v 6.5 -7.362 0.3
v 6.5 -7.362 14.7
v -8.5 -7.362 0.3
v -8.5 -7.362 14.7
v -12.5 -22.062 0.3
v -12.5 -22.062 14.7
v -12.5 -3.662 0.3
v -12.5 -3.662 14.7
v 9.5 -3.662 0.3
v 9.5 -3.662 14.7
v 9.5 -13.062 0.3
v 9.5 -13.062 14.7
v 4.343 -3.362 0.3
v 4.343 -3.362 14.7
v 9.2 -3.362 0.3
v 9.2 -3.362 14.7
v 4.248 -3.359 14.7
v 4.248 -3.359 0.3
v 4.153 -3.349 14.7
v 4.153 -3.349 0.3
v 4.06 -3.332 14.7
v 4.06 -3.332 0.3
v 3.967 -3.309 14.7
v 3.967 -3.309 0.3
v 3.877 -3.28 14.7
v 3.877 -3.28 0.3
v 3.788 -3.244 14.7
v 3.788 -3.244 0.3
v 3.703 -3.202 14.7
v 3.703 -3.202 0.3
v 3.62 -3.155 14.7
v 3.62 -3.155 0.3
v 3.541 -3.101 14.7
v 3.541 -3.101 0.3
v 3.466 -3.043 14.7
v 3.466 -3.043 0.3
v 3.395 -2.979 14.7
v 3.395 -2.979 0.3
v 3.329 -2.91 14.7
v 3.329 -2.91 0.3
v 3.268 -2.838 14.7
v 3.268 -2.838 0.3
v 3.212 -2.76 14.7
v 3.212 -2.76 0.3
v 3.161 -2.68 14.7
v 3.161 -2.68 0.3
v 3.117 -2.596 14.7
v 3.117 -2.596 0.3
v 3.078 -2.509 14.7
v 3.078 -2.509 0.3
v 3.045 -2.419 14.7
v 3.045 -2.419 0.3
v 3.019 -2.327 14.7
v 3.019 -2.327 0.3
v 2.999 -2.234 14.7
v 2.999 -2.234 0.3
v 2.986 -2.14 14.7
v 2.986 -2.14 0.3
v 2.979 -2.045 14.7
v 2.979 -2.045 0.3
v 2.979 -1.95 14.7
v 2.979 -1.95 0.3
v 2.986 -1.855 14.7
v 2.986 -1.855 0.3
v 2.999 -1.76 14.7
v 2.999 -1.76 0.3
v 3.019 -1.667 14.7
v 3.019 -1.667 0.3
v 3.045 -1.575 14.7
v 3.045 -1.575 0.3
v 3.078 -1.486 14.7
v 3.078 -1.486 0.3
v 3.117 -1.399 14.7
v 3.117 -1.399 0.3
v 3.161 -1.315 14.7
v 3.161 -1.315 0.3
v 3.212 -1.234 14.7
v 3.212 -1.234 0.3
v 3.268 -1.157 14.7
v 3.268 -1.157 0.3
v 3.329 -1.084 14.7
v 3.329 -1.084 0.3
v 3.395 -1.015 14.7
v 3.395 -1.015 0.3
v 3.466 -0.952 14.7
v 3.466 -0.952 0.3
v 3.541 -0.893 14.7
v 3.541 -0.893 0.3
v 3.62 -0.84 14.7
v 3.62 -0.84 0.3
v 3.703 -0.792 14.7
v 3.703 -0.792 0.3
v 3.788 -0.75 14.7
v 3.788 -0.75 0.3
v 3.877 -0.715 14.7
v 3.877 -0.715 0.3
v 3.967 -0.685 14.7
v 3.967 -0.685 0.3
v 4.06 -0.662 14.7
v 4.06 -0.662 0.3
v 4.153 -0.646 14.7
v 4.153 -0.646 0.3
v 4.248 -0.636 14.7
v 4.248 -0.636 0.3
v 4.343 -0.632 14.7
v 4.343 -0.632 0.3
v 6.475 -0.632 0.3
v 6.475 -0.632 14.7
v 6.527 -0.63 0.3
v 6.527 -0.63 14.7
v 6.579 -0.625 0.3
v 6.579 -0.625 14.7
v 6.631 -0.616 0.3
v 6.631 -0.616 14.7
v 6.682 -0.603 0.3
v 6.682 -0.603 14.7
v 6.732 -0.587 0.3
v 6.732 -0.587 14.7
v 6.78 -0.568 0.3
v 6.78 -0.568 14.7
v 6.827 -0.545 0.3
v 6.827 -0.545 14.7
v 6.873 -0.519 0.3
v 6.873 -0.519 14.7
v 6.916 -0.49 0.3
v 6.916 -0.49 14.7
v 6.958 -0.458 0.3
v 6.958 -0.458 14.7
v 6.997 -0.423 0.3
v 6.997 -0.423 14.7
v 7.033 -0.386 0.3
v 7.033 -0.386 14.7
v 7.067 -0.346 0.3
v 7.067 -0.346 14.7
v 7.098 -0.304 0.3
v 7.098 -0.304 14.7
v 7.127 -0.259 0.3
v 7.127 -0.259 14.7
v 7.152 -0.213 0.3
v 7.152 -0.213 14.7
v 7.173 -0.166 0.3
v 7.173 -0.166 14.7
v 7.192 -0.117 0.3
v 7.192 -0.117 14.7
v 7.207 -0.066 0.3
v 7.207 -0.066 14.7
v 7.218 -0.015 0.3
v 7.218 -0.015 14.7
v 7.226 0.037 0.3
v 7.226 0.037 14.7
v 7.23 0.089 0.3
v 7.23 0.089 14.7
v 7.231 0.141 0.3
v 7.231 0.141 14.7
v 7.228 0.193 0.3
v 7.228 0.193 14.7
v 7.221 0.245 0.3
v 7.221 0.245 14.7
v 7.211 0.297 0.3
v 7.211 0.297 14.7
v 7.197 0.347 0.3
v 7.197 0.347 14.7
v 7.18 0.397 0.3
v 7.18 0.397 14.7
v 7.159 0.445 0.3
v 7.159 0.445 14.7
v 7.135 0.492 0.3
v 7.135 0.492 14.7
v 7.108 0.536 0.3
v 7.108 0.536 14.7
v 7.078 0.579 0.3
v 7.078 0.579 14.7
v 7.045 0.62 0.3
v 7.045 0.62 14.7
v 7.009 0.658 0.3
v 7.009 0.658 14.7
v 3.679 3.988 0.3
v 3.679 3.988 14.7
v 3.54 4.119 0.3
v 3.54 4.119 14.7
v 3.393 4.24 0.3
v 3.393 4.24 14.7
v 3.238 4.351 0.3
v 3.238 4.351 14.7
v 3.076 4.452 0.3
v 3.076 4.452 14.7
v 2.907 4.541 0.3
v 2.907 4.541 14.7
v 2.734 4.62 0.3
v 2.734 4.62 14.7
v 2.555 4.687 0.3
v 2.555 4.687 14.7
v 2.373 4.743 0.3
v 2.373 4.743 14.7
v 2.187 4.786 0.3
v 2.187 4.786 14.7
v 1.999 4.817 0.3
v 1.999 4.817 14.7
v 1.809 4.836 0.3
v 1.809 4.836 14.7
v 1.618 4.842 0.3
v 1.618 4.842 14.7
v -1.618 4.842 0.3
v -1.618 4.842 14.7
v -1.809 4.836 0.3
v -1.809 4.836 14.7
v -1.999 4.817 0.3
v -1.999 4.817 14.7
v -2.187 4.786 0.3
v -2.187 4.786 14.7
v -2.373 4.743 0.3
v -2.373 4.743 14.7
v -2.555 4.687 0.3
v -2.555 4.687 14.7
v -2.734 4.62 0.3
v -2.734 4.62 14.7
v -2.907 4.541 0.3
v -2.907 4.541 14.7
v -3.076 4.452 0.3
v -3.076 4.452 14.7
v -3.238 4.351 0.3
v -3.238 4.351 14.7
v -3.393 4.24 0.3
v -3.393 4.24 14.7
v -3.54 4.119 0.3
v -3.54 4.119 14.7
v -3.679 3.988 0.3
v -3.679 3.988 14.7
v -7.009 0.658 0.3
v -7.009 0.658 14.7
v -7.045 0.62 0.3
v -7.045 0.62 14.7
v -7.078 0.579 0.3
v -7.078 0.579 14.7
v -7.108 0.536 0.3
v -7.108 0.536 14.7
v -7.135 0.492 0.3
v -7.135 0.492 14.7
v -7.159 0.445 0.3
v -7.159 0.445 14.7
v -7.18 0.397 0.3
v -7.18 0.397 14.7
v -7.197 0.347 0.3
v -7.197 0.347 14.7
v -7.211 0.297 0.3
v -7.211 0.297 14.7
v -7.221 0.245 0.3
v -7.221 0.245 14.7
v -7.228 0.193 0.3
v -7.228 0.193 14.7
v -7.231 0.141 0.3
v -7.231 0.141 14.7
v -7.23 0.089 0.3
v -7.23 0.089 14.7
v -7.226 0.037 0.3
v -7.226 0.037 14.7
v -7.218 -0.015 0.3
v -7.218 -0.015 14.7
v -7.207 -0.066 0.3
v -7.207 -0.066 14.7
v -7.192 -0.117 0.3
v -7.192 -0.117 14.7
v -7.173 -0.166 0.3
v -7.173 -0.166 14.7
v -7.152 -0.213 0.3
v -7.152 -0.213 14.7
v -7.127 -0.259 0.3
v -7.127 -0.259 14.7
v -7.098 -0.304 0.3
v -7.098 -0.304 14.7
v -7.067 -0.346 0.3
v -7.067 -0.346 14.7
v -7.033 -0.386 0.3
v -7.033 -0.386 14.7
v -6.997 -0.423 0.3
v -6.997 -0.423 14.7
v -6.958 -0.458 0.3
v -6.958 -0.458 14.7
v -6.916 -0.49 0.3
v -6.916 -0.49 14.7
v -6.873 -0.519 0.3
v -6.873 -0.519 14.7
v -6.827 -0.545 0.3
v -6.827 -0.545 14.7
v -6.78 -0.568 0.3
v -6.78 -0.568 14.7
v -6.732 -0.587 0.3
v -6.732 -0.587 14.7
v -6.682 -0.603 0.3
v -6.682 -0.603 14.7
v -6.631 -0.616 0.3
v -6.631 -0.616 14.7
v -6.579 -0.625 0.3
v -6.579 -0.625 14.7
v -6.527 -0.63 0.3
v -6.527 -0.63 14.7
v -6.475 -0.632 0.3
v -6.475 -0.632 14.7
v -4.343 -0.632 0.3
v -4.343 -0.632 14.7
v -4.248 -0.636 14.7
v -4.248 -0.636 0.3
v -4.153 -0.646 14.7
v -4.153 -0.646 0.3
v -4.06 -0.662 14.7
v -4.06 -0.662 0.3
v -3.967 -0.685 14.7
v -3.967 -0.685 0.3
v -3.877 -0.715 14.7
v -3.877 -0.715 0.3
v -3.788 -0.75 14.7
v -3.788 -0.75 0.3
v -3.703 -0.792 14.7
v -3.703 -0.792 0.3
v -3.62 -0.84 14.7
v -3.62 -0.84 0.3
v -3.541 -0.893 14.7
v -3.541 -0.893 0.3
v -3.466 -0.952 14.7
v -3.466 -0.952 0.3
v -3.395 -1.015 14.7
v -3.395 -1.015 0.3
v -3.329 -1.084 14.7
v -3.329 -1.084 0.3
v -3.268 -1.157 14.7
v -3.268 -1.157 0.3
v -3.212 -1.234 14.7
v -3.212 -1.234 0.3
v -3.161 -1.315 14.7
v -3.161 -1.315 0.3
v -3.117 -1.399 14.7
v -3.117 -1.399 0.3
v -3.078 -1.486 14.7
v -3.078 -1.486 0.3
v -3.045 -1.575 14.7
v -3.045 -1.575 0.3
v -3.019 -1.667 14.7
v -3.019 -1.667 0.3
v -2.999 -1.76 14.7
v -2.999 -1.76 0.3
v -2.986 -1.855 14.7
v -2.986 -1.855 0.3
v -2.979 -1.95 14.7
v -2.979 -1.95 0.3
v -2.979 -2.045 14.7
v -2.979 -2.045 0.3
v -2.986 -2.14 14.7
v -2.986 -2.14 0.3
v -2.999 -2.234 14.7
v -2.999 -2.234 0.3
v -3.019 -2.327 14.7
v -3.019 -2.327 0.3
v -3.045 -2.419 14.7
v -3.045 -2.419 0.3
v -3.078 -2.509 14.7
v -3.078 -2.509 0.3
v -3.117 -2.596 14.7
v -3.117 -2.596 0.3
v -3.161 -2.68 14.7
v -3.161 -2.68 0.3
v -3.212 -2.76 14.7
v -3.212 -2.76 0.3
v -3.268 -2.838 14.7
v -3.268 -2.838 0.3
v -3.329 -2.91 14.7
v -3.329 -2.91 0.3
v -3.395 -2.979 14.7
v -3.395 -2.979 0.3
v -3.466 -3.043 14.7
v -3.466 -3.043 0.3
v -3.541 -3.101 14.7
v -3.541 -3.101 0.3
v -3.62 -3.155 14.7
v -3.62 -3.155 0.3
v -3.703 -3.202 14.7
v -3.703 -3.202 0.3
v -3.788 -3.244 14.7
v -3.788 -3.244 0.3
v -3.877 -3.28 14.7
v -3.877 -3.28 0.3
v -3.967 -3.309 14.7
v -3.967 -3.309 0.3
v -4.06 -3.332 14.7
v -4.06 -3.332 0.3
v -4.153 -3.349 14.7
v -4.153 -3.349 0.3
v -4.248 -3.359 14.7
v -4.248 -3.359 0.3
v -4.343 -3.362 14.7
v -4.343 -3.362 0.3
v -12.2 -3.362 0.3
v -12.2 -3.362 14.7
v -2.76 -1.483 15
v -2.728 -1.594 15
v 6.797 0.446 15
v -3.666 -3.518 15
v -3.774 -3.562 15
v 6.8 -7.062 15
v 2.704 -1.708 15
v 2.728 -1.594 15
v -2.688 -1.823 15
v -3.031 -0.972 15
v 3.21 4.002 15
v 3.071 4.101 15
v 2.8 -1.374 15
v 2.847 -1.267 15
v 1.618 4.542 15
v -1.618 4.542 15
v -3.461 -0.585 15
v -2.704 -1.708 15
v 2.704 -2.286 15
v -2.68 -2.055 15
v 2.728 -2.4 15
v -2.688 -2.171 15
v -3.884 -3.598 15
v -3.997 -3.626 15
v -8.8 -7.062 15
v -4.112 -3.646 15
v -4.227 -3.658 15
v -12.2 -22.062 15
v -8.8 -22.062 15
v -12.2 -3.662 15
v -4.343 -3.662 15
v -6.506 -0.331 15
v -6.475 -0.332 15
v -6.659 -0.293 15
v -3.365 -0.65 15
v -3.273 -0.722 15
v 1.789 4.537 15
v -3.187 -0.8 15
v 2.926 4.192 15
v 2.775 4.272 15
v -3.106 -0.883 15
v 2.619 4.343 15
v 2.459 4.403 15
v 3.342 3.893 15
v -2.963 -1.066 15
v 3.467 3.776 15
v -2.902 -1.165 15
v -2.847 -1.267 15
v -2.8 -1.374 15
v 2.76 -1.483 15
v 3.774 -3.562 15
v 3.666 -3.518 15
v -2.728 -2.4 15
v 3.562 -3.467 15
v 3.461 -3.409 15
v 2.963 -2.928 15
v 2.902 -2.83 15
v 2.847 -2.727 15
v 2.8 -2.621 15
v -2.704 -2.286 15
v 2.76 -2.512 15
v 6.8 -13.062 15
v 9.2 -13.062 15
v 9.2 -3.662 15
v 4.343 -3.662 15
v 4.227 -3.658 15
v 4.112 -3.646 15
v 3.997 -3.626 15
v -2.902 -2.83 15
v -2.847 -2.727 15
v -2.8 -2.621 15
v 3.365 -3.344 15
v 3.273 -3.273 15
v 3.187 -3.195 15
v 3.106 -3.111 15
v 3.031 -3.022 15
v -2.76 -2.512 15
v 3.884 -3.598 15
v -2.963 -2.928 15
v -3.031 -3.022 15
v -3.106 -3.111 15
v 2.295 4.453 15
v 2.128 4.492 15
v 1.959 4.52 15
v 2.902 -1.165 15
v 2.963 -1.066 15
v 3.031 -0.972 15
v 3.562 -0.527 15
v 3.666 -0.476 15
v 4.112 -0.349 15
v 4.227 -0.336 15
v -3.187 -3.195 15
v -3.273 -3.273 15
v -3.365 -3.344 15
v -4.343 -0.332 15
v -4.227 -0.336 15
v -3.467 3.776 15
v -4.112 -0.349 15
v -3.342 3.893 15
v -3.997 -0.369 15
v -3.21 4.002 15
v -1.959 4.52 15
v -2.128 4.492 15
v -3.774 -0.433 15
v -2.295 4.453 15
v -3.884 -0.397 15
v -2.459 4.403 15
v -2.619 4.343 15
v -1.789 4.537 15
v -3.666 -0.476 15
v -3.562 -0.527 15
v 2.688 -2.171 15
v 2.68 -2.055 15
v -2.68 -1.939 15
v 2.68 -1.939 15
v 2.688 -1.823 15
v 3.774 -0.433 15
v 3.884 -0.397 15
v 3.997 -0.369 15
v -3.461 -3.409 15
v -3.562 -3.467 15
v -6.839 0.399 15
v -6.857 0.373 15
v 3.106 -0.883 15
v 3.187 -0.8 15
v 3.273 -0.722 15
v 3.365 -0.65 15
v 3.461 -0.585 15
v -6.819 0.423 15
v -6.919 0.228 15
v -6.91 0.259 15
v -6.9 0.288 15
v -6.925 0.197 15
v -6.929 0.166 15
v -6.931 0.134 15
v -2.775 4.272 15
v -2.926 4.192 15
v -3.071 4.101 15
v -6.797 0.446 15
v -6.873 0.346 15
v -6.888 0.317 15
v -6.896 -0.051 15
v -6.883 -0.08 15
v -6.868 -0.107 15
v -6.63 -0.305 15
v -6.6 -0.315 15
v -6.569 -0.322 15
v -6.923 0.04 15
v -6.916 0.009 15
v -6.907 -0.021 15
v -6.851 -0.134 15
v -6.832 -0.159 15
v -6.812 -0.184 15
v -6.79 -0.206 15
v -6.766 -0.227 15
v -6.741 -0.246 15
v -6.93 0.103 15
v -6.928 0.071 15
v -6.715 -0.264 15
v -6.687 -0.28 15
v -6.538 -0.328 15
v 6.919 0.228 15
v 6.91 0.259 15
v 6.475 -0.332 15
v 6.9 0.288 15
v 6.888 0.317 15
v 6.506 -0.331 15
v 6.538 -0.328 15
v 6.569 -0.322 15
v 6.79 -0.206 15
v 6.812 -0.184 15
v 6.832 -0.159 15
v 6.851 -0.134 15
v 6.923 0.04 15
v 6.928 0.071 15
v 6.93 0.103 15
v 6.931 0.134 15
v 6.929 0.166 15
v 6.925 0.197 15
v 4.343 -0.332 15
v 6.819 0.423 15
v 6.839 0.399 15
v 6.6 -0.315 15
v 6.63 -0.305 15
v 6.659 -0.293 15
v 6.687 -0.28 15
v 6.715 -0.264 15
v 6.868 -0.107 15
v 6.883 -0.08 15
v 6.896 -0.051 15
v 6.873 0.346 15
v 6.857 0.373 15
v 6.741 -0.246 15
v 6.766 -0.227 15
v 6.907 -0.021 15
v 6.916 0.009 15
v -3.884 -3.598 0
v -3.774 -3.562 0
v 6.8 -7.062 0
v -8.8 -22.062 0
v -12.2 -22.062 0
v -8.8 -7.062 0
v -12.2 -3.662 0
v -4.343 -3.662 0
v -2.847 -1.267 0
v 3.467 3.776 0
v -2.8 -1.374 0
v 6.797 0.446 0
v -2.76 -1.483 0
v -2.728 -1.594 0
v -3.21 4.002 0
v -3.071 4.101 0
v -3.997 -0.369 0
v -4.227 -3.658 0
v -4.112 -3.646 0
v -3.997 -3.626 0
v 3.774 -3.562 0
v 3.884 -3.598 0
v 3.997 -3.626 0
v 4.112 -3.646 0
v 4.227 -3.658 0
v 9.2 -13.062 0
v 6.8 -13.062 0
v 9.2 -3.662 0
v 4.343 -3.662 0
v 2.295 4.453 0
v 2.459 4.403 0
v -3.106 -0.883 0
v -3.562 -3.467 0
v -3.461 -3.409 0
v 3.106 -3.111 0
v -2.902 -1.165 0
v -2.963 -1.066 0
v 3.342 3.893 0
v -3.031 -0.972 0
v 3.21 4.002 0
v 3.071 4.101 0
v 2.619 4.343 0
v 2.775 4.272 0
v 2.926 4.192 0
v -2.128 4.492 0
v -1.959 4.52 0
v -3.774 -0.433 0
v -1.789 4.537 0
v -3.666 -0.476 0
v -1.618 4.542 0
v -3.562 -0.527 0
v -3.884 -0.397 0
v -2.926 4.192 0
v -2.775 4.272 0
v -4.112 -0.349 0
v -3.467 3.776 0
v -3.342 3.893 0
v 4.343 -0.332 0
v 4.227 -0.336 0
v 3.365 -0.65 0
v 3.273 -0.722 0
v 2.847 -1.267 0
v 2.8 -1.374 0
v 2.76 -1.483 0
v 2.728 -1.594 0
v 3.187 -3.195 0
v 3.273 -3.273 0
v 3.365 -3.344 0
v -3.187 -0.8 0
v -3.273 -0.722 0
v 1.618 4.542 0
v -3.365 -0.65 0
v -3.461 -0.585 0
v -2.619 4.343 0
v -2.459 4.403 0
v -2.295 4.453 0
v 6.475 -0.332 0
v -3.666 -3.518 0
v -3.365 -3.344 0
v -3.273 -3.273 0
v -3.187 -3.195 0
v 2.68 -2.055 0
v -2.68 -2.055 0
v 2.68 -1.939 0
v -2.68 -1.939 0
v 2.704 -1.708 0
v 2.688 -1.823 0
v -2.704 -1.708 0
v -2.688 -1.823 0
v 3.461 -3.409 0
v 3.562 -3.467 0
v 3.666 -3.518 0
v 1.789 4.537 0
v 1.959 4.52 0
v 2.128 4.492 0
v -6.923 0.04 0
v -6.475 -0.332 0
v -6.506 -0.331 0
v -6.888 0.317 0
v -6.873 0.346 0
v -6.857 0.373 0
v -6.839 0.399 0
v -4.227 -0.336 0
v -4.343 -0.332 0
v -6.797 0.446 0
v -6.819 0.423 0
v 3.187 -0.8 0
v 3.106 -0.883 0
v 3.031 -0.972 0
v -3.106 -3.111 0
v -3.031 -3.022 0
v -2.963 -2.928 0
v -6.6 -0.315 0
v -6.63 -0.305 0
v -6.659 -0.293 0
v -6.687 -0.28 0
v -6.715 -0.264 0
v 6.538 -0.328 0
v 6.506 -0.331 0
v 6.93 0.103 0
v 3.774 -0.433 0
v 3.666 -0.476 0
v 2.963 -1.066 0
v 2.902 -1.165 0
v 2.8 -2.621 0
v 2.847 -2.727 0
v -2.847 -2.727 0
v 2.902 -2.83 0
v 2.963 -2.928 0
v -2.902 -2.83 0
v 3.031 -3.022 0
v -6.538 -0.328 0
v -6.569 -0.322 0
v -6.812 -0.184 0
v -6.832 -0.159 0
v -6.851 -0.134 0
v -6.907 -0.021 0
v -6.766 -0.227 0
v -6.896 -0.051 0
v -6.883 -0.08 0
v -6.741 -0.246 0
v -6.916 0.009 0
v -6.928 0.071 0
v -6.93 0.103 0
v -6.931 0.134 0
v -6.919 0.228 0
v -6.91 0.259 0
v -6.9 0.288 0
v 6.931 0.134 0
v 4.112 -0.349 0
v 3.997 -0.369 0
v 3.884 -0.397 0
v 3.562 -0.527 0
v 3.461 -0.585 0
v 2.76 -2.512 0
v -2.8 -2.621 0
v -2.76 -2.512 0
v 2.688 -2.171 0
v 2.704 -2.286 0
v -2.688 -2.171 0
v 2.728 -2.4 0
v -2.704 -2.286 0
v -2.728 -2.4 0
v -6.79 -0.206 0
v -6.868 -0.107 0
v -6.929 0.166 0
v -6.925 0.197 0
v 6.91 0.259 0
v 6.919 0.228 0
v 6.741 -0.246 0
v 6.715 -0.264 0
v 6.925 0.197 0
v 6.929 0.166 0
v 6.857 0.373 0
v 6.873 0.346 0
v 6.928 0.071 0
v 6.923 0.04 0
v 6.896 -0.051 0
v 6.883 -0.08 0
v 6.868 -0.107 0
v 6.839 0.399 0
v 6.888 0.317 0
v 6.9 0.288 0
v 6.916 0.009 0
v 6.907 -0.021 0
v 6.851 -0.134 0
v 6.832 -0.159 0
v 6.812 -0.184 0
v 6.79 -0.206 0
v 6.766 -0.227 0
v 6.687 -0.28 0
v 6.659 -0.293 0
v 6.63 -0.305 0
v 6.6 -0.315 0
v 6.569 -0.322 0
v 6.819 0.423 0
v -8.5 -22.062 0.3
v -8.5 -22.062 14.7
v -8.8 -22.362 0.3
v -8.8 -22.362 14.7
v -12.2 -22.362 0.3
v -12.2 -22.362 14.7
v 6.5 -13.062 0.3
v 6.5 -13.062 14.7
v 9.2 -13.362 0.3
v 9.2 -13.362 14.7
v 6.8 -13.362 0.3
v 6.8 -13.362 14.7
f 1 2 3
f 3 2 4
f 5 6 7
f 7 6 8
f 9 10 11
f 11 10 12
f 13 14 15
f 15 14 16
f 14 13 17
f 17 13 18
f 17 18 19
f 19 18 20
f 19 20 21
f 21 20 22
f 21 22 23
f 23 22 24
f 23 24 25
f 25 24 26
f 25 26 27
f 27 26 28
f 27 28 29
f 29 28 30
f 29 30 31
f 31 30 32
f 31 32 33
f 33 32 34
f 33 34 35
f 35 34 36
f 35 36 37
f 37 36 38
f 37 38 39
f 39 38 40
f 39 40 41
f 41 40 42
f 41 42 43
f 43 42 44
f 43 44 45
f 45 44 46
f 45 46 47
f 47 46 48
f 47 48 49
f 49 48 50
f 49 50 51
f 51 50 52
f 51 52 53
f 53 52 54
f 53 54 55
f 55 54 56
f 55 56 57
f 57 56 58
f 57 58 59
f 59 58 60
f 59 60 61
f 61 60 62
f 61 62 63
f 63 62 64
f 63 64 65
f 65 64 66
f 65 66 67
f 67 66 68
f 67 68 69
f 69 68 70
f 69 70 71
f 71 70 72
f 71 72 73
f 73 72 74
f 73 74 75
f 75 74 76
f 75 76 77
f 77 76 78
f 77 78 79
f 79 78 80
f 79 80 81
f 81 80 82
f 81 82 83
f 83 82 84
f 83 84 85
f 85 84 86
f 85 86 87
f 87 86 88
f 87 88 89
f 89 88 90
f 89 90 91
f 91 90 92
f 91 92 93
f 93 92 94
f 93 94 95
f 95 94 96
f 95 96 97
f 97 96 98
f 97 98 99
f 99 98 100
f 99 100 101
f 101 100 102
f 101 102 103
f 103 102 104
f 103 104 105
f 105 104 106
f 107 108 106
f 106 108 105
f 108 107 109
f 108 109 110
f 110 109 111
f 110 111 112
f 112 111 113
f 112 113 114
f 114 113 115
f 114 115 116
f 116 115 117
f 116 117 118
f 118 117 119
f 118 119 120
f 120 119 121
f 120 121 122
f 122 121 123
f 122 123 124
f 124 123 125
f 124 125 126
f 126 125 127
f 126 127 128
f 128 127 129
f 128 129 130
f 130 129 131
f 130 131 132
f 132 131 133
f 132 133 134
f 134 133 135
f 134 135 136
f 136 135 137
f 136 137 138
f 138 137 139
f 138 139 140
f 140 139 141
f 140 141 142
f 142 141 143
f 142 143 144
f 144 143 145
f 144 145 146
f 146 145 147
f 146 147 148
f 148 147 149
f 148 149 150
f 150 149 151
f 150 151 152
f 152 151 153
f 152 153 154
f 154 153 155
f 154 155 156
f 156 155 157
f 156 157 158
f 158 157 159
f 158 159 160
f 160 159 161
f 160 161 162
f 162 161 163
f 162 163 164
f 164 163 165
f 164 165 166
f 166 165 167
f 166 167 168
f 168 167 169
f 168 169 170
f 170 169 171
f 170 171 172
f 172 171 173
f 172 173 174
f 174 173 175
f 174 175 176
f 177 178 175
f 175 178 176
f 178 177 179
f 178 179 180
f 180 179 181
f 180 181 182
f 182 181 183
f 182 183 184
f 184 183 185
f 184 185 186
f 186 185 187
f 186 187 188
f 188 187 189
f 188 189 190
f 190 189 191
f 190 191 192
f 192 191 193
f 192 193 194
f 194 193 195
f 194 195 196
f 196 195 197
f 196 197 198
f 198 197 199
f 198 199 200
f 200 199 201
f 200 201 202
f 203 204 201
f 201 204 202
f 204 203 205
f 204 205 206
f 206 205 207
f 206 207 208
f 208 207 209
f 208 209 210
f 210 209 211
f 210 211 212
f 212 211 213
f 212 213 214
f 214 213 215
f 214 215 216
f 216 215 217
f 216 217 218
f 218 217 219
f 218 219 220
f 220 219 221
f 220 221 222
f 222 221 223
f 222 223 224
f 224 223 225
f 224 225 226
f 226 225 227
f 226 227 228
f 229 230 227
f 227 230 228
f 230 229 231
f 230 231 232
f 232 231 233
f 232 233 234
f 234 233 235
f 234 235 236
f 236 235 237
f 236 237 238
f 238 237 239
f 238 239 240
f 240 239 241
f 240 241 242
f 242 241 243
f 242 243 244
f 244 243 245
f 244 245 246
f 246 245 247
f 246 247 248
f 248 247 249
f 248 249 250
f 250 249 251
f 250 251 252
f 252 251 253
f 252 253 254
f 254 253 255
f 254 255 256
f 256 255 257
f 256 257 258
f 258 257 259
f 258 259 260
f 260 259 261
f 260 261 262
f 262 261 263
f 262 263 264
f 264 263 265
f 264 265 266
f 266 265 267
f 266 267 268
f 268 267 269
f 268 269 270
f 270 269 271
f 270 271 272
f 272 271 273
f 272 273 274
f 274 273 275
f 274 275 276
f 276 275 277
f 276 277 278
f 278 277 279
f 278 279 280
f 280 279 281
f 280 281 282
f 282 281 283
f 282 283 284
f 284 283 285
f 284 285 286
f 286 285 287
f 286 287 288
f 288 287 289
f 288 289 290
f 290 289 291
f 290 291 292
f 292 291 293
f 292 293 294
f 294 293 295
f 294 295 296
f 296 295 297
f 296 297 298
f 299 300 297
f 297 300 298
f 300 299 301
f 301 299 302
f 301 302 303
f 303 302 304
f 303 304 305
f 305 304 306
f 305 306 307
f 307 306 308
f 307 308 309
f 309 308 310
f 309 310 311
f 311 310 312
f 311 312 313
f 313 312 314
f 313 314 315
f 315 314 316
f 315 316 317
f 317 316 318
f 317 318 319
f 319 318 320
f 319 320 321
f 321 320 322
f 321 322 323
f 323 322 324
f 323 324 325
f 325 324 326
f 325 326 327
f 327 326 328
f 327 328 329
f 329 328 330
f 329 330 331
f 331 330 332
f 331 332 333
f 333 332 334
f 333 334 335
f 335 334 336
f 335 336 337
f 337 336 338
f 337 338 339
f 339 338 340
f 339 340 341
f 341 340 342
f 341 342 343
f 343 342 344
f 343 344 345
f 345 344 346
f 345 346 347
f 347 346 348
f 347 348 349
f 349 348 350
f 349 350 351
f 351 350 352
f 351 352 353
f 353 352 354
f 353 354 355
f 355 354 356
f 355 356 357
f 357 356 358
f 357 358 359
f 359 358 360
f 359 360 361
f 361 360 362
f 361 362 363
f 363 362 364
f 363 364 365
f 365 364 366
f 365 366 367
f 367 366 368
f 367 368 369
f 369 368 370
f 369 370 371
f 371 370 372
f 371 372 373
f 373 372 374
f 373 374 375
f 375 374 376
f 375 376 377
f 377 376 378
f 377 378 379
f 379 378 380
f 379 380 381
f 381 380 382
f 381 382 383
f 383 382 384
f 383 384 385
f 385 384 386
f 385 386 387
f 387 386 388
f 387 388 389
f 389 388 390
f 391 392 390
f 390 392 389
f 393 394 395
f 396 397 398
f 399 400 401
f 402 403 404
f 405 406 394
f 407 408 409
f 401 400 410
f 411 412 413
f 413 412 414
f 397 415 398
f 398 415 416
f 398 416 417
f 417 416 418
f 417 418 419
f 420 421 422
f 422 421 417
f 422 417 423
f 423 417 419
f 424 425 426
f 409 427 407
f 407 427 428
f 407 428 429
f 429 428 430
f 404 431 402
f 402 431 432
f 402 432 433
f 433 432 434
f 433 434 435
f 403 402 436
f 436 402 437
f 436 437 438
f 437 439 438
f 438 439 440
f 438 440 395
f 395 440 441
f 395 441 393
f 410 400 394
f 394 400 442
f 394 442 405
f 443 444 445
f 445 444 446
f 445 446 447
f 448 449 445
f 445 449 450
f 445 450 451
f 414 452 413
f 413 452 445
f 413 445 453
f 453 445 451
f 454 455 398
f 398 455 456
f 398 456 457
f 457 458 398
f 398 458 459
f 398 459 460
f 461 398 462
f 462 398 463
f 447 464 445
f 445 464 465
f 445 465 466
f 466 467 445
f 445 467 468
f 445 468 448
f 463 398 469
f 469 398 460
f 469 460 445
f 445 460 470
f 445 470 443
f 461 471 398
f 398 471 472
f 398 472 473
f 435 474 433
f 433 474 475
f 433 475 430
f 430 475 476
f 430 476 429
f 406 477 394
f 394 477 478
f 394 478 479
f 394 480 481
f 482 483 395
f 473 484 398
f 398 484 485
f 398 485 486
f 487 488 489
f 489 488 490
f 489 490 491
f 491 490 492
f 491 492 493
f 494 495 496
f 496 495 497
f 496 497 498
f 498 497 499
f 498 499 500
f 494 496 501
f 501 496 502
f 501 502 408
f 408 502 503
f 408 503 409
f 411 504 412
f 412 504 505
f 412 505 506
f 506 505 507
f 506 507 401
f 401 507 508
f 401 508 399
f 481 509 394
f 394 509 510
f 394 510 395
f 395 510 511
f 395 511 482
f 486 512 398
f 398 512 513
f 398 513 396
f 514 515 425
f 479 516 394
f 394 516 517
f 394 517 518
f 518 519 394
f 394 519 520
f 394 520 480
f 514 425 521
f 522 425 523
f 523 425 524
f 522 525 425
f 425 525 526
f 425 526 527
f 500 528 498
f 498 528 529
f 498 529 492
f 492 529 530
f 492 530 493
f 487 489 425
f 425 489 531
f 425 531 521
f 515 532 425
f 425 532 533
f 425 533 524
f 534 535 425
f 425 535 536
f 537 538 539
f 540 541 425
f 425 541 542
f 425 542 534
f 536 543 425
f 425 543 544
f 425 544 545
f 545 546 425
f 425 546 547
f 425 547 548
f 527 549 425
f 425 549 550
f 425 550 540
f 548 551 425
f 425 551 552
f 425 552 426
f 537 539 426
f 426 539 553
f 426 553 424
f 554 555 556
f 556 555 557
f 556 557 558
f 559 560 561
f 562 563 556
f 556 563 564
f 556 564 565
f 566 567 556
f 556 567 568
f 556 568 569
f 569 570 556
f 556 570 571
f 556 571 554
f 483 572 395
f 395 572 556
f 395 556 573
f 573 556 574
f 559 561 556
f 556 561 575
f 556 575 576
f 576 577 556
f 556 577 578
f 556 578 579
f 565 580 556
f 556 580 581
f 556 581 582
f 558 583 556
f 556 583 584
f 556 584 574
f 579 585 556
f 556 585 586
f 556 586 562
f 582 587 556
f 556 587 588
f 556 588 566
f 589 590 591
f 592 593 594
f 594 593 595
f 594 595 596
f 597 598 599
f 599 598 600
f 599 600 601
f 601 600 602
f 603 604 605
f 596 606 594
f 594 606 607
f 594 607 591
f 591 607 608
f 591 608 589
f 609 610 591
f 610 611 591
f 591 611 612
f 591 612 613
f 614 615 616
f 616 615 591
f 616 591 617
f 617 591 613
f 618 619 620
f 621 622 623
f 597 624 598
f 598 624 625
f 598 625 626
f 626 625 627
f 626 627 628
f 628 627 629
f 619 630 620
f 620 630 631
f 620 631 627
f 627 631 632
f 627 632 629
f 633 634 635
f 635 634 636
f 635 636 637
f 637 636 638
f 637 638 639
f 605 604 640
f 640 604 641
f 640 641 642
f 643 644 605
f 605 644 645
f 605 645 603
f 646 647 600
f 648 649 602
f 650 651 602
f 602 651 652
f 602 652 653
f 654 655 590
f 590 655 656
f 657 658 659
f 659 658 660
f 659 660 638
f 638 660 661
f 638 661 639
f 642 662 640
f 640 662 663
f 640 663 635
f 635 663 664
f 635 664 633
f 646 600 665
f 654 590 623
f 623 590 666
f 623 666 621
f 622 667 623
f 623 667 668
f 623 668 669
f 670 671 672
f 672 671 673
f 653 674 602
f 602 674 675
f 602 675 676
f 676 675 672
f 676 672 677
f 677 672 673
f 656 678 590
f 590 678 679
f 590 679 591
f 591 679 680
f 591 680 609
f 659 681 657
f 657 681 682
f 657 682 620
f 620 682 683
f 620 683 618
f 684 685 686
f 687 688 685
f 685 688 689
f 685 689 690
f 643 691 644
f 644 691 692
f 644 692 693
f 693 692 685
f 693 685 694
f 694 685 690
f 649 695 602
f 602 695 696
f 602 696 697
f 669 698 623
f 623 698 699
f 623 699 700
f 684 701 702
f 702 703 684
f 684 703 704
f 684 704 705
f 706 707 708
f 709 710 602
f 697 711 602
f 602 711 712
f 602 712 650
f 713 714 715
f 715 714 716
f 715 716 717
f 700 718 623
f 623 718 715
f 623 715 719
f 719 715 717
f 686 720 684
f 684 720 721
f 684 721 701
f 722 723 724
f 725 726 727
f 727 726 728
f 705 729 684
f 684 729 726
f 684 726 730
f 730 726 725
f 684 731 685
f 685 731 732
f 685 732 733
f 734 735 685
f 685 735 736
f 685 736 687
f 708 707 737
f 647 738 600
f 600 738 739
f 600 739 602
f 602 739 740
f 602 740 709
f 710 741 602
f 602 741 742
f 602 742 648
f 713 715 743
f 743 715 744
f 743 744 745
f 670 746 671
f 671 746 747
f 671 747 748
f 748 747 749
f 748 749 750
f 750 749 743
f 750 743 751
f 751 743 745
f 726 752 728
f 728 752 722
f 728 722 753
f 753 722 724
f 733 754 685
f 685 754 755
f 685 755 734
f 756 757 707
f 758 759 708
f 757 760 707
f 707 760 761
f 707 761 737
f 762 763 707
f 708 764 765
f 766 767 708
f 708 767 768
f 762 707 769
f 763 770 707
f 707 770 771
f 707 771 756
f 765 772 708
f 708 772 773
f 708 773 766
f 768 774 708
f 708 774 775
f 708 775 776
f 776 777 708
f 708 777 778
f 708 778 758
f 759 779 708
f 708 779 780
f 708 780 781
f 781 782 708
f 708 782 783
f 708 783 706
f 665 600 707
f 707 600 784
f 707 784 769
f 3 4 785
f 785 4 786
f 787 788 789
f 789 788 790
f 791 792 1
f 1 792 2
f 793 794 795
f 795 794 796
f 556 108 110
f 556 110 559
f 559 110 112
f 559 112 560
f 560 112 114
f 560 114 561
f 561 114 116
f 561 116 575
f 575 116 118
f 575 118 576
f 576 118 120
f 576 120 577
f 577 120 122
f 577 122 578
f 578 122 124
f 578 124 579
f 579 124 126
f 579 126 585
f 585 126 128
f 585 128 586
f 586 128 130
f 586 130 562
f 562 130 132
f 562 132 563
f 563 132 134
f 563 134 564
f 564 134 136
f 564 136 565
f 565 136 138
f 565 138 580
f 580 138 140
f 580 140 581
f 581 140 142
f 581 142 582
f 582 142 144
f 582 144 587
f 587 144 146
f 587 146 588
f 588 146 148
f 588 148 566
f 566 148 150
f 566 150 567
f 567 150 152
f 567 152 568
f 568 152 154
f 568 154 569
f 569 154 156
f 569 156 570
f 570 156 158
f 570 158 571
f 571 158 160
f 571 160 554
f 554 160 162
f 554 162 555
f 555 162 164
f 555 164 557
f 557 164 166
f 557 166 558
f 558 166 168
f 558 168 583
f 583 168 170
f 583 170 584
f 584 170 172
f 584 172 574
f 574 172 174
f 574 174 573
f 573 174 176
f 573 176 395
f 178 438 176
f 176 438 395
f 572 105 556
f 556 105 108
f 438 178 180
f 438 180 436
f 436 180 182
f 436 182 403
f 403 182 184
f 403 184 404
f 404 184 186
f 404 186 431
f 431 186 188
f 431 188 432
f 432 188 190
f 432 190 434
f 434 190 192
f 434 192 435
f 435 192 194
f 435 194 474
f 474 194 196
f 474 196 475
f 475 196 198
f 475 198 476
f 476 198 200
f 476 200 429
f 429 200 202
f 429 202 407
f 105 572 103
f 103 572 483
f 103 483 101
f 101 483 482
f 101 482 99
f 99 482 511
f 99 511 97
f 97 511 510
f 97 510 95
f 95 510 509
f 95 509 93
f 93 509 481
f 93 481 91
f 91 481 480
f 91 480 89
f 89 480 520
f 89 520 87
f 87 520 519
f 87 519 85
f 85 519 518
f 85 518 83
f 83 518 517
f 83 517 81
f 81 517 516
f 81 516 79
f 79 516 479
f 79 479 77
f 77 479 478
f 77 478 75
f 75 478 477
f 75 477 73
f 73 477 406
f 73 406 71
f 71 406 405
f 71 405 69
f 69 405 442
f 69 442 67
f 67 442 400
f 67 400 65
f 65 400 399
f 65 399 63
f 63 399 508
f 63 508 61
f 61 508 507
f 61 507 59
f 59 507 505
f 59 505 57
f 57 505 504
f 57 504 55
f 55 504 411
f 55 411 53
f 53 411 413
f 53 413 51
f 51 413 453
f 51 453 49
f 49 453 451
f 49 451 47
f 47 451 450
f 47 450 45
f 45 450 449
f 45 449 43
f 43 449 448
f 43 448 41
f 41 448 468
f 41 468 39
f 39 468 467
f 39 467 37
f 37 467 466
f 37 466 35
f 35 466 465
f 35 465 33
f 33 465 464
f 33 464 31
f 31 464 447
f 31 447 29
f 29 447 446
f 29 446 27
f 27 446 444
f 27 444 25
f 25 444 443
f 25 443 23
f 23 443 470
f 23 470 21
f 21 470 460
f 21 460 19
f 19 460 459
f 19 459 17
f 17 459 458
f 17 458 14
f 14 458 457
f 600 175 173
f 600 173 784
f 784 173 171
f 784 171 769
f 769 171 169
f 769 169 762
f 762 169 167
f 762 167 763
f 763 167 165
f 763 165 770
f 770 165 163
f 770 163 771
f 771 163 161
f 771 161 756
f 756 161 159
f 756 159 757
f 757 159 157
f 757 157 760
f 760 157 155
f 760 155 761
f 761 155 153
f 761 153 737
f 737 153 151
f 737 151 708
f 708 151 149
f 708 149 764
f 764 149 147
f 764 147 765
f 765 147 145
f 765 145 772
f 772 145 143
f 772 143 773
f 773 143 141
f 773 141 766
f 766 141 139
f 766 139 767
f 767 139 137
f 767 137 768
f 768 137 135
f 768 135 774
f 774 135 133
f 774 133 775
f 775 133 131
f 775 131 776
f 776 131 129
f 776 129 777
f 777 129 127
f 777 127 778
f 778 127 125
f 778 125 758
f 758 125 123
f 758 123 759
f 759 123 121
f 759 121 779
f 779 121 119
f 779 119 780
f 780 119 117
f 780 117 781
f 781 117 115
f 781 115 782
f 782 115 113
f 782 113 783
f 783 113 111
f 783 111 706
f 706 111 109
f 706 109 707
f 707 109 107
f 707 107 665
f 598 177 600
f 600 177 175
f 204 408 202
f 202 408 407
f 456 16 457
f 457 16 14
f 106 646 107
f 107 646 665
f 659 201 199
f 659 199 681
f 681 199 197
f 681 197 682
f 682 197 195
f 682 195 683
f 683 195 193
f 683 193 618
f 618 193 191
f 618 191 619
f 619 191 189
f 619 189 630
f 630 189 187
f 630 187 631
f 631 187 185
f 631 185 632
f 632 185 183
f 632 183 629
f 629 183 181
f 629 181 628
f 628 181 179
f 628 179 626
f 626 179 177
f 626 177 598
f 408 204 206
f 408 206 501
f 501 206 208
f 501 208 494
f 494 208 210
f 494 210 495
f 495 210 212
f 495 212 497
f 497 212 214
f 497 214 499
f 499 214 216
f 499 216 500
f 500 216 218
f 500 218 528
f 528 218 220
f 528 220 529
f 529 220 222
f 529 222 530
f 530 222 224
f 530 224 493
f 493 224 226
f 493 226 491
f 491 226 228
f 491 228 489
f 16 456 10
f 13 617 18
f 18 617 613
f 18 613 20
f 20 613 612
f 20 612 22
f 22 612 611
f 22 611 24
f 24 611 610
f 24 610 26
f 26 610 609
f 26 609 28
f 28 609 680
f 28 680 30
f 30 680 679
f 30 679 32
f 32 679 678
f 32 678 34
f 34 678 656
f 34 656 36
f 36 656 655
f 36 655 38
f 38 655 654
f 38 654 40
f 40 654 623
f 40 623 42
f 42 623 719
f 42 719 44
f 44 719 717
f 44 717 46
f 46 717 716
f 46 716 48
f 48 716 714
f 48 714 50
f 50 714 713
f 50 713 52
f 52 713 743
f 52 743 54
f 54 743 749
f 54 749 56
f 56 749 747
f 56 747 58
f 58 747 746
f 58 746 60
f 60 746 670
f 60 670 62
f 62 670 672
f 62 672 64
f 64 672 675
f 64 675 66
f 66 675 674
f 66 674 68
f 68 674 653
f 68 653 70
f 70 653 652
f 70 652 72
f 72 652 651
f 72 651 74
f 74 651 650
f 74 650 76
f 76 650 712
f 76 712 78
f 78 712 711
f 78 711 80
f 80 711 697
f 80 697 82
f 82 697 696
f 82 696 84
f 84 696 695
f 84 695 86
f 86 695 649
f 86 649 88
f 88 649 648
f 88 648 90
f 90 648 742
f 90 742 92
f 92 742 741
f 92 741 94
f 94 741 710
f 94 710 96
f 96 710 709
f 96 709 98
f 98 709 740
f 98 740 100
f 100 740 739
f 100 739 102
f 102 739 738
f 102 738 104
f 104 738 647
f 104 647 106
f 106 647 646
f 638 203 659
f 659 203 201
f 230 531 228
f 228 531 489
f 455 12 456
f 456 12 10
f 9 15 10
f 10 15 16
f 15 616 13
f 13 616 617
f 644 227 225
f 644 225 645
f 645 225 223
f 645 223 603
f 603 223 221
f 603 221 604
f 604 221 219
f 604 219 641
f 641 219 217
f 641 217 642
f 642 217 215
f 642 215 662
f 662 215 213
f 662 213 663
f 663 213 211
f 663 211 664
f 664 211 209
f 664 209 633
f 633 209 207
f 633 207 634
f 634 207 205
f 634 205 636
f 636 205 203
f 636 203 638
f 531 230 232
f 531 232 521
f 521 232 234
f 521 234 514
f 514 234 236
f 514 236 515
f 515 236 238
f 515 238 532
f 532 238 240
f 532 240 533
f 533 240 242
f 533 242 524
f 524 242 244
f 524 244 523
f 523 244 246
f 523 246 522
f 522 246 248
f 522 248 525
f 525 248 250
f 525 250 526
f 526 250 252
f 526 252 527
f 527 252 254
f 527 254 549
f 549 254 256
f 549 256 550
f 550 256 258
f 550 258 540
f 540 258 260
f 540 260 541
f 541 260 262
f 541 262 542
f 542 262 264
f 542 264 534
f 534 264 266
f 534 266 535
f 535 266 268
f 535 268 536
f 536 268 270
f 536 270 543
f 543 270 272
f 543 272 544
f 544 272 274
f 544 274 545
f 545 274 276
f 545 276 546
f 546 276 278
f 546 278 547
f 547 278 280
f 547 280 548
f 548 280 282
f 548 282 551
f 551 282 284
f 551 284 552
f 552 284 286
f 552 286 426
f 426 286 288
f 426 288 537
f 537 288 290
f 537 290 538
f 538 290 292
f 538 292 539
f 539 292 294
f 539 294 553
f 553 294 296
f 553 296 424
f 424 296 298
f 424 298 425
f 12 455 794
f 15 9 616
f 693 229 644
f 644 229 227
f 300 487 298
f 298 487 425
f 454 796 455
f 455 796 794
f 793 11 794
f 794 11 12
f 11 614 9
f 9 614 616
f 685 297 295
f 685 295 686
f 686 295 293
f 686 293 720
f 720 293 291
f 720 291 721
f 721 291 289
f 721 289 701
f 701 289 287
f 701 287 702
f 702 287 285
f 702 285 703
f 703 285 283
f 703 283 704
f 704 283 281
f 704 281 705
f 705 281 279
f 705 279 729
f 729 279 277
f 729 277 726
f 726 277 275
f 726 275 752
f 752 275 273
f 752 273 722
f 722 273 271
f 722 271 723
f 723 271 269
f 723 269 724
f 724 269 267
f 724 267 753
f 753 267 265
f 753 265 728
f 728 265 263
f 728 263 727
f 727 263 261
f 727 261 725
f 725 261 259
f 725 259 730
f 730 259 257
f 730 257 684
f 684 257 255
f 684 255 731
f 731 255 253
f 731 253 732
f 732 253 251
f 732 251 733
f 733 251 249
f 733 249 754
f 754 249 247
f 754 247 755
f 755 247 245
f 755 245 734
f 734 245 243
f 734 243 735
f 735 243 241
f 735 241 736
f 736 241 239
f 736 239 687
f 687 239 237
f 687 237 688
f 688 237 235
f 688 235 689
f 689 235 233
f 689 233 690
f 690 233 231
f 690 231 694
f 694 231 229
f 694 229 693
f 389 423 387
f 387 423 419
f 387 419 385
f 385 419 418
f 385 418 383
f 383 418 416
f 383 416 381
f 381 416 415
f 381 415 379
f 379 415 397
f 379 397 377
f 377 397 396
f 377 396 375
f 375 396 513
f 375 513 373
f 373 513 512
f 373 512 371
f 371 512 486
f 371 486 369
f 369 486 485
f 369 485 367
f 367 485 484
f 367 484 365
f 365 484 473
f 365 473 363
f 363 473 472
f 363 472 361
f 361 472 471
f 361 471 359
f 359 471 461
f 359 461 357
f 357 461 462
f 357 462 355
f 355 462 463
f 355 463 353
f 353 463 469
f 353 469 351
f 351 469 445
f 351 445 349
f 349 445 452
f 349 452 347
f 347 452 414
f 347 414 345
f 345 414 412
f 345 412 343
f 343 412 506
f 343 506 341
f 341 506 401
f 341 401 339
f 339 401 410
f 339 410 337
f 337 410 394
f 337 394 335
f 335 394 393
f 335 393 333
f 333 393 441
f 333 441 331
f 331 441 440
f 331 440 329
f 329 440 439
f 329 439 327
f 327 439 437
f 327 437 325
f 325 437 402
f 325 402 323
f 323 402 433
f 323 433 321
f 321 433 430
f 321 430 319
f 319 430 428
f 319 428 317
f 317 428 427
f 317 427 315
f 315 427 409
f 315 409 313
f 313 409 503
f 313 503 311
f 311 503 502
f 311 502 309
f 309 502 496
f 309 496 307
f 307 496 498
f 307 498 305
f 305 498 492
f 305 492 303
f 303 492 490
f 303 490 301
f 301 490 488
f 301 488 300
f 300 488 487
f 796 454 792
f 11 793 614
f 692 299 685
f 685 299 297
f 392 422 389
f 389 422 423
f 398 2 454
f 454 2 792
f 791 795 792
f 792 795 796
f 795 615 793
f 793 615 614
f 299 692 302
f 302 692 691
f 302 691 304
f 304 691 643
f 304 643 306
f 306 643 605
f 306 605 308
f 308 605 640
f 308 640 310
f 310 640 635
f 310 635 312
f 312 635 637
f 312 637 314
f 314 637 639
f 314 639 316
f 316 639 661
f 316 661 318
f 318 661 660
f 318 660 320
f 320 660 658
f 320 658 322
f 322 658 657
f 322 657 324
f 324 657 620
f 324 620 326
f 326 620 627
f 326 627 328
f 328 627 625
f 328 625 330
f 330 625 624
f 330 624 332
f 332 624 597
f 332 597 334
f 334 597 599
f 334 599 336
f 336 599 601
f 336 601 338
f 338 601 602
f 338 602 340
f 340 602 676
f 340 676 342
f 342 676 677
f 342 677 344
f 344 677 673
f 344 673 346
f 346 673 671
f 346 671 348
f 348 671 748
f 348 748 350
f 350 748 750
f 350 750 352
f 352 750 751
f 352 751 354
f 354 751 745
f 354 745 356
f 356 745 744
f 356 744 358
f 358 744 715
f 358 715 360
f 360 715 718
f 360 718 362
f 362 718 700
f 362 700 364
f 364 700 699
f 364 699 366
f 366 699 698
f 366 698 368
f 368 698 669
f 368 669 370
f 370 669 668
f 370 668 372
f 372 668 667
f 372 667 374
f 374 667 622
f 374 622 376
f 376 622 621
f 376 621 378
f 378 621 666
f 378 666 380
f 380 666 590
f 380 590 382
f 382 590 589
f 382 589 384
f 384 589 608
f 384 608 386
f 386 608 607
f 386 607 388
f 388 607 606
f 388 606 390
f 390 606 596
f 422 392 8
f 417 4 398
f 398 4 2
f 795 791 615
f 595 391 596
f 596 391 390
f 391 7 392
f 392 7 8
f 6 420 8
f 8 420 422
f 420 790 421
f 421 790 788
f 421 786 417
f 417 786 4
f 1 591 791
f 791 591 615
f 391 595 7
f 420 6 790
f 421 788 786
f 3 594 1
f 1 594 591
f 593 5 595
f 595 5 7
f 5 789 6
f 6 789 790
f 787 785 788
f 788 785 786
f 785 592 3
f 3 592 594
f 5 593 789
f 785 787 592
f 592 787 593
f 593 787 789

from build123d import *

# Parameters (mm, degrees)
BOSS_EXTRUDE1_DEPTH = 15
SKETCH2_W           = 4
SKETCH2_H           = 15
BOSS_EXTRUDE2_DEPTH = 15
SKETCH3_W           = 3
SKETCH3_H           = 15
BOSS_EXTRUDE3_DEPTH = 6
CHAMFER1_SIZE       = 0.3


with BuildPart() as part:
    # Sketch1 → Boss-Extrude1 (new body)
    with BuildSketch(Plane.XY):
        with BuildLine():
            Line((4.343399971, -3.3621), (5.0570836, -3.3621))
            Line((5.0570836, -3.3621), (9.5, -3.3621))
            Line((9.5, -3.3621), (9.5, -7.3621))
            Line((9.5, -7.3621), (-12.5, -7.3621))
            Line((-12.5, -7.3621), (-12.5, -3.3621))
            Line((-12.5, -3.3621), (-5.0570836, -3.3621))
            Line((-5.0570836, -3.3621), (-4.3434, -3.3621))
            ThreePointArc((-4.3434, -3.3621), (-2.9785, -1.9972), (-4.3434, -0.6323))
            Line((-4.3434, -0.6323), (-6.474794456, -0.6323))
            ThreePointArc((-6.474794456, -0.6323), (-7.173247382, -0.165608675), (-7.009367182, 0.658272727))
            Line((-7.009367182, 0.658272727), (-3.679323642, 3.988316267))
            ThreePointArc((-3.679323642, 3.988316267), (-2.73362958, 4.620208837), (-1.618107374, 4.8421))
            Line((-1.618107374, 4.8421), (1.618107374, 4.8421))
            ThreePointArc((1.618107374, 4.8421), (2.73362958, 4.620208837), (3.679323642, 3.988316267))
            Line((3.679323642, 3.988316267), (7.009367182, 0.658272727))
            ThreePointArc((7.009367182, 0.658272727), (7.173247382, -0.165608675), (6.474794456, -0.6323))
            Line((6.474794456, -0.6323), (4.343399971, -0.6323))
            ThreePointArc((4.343399971, -0.6323), (2.978499971, -1.9972), (4.343399971, -3.3621))
        make_face()
    extrude(amount=BOSS_EXTRUDE1_DEPTH)

    # Sketch2 → Boss-Extrude2 (add)
    with BuildSketch(Plane.XZ.offset(7.3621)):
        with Locations((-10.5, 7.5)):
            Rectangle(SKETCH2_W, SKETCH2_H)
    extrude(amount=BOSS_EXTRUDE2_DEPTH)

    # Sketch3 → Boss-Extrude3 (add)
    with BuildSketch(Plane.XZ.offset(7.3621)):
        with Locations((8, 7.5)):
            Rectangle(SKETCH3_W, SKETCH3_H)
    extrude(amount=BOSS_EXTRUDE3_DEPTH)

    # Chamfer1
    chamfer1_edges = [part.edges().sort_by_distance(p)[0] for p in [
        (9.5, -8.3621, 15),
        (-8.4217, -3.3621, 0),
        (-2.9785, -1.9972, 0),
        (-5.409097228, -0.6323, 0),
        (-7.173247382, -0.165608675, 0),
        (-5.344345412, 2.323294497, 0),
        (-2.73362958, 4.620208837, 0),
        (0, 4.8421, 0),
        (2.73362958, 4.620208837, 0),
        (5.344345412, 2.323294497, 0),
        (6.921699986, -3.3621, 15),
        (7.173247382, -0.165608675, 0),
        (5.409097213, -0.6323, 0),
        (2.978499971, -1.9972, 0),
        (6.921699986, -3.3621, 0),
        (9.5, -8.3621, 0),
        (-12.5, -12.8621, 0),
        (2.978499971, -1.9972, 15),
        (9.5, -3.3621, 7.5),
        (-12.5, -3.3621, 7.5),
        (5.409097213, -0.6323, 15),
        (7.173247382, -0.165608675, 15),
        (5.344345412, 2.323294497, 15),
        (2.73362958, 4.620208837, 15),
        (0, 4.8421, 15),
        (-8.4217, -3.3621, 15),
        (-1, -7.3621, 0),
        (-1, -7.3621, 15),
        (-2.73362958, 4.620208837, 15),
        (-8.5, -14.8621, 0),
        (-8.5, -14.8621, 15),
        (-12.5, -22.3621, 7.5),
        (-10.5, -22.3621, 0),
        (-8.5, -22.3621, 7.5),
        (-10.5, -22.3621, 15),
        (-5.344345412, 2.323294497, 15),
        (-7.173247382, -0.165608675, 15),
        (-5.409097228, -0.6323, 15),
        (6.5, -10.3621, 15),
        (6.5, -10.3621, 0),
        (9.5, -13.3621, 7.5),
        (8, -13.3621, 15),
        (6.5, -13.3621, 7.5),
        (8, -13.3621, 0),
        (-2.9785, -1.9972, 15),
        (-12.5, -12.8621, 15),
    ]]
    chamfer(chamfer1_edges, length=CHAMFER1_SIZE)


solid = part.part
